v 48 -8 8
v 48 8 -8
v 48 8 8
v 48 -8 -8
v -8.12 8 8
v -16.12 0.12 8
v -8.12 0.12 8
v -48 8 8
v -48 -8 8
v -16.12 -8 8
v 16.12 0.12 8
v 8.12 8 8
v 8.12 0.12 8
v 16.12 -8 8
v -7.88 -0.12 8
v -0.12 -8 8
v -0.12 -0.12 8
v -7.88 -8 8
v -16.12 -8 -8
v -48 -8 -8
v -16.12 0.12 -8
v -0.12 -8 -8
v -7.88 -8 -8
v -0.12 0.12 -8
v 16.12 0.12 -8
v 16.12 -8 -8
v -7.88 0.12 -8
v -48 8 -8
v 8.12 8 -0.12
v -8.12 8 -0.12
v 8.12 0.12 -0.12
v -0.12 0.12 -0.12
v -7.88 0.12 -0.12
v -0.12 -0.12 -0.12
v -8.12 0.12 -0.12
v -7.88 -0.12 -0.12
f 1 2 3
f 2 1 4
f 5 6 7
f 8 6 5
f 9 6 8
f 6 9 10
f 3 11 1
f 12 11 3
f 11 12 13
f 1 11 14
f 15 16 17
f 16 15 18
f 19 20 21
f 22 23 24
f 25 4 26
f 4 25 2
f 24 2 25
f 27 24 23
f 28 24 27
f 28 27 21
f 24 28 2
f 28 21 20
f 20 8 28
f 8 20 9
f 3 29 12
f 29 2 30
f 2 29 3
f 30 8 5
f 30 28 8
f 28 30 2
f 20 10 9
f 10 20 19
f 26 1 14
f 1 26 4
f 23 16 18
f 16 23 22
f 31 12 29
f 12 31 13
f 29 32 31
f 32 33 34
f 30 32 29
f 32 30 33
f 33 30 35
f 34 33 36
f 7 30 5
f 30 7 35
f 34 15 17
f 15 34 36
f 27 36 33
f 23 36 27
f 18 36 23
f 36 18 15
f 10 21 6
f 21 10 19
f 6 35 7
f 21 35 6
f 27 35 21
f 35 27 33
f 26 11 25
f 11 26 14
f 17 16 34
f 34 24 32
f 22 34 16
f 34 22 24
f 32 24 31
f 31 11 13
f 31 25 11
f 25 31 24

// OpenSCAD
measure = 8;
dd = 0.12/measure;

scale([measure,measure,measure]) difference() {
    cube(size = [12,2,2], center = true);
    translate([0,0.5,0.5]) 
        cube(size = [2 + 2*dd, 1 + 2*dd, 1 + 2*dd], center=true);
    translate([-1.5,-0.5,0]) 
        cube(size=[1 + 2*dd, 1 + 2*dd, 2 + 2*dd], center=true);
    translate([1,-0.5,0]) 
        cube(size = [2 + 2*dd, 1 + 2*dd, 2 + 2*dd], center=true);
}
